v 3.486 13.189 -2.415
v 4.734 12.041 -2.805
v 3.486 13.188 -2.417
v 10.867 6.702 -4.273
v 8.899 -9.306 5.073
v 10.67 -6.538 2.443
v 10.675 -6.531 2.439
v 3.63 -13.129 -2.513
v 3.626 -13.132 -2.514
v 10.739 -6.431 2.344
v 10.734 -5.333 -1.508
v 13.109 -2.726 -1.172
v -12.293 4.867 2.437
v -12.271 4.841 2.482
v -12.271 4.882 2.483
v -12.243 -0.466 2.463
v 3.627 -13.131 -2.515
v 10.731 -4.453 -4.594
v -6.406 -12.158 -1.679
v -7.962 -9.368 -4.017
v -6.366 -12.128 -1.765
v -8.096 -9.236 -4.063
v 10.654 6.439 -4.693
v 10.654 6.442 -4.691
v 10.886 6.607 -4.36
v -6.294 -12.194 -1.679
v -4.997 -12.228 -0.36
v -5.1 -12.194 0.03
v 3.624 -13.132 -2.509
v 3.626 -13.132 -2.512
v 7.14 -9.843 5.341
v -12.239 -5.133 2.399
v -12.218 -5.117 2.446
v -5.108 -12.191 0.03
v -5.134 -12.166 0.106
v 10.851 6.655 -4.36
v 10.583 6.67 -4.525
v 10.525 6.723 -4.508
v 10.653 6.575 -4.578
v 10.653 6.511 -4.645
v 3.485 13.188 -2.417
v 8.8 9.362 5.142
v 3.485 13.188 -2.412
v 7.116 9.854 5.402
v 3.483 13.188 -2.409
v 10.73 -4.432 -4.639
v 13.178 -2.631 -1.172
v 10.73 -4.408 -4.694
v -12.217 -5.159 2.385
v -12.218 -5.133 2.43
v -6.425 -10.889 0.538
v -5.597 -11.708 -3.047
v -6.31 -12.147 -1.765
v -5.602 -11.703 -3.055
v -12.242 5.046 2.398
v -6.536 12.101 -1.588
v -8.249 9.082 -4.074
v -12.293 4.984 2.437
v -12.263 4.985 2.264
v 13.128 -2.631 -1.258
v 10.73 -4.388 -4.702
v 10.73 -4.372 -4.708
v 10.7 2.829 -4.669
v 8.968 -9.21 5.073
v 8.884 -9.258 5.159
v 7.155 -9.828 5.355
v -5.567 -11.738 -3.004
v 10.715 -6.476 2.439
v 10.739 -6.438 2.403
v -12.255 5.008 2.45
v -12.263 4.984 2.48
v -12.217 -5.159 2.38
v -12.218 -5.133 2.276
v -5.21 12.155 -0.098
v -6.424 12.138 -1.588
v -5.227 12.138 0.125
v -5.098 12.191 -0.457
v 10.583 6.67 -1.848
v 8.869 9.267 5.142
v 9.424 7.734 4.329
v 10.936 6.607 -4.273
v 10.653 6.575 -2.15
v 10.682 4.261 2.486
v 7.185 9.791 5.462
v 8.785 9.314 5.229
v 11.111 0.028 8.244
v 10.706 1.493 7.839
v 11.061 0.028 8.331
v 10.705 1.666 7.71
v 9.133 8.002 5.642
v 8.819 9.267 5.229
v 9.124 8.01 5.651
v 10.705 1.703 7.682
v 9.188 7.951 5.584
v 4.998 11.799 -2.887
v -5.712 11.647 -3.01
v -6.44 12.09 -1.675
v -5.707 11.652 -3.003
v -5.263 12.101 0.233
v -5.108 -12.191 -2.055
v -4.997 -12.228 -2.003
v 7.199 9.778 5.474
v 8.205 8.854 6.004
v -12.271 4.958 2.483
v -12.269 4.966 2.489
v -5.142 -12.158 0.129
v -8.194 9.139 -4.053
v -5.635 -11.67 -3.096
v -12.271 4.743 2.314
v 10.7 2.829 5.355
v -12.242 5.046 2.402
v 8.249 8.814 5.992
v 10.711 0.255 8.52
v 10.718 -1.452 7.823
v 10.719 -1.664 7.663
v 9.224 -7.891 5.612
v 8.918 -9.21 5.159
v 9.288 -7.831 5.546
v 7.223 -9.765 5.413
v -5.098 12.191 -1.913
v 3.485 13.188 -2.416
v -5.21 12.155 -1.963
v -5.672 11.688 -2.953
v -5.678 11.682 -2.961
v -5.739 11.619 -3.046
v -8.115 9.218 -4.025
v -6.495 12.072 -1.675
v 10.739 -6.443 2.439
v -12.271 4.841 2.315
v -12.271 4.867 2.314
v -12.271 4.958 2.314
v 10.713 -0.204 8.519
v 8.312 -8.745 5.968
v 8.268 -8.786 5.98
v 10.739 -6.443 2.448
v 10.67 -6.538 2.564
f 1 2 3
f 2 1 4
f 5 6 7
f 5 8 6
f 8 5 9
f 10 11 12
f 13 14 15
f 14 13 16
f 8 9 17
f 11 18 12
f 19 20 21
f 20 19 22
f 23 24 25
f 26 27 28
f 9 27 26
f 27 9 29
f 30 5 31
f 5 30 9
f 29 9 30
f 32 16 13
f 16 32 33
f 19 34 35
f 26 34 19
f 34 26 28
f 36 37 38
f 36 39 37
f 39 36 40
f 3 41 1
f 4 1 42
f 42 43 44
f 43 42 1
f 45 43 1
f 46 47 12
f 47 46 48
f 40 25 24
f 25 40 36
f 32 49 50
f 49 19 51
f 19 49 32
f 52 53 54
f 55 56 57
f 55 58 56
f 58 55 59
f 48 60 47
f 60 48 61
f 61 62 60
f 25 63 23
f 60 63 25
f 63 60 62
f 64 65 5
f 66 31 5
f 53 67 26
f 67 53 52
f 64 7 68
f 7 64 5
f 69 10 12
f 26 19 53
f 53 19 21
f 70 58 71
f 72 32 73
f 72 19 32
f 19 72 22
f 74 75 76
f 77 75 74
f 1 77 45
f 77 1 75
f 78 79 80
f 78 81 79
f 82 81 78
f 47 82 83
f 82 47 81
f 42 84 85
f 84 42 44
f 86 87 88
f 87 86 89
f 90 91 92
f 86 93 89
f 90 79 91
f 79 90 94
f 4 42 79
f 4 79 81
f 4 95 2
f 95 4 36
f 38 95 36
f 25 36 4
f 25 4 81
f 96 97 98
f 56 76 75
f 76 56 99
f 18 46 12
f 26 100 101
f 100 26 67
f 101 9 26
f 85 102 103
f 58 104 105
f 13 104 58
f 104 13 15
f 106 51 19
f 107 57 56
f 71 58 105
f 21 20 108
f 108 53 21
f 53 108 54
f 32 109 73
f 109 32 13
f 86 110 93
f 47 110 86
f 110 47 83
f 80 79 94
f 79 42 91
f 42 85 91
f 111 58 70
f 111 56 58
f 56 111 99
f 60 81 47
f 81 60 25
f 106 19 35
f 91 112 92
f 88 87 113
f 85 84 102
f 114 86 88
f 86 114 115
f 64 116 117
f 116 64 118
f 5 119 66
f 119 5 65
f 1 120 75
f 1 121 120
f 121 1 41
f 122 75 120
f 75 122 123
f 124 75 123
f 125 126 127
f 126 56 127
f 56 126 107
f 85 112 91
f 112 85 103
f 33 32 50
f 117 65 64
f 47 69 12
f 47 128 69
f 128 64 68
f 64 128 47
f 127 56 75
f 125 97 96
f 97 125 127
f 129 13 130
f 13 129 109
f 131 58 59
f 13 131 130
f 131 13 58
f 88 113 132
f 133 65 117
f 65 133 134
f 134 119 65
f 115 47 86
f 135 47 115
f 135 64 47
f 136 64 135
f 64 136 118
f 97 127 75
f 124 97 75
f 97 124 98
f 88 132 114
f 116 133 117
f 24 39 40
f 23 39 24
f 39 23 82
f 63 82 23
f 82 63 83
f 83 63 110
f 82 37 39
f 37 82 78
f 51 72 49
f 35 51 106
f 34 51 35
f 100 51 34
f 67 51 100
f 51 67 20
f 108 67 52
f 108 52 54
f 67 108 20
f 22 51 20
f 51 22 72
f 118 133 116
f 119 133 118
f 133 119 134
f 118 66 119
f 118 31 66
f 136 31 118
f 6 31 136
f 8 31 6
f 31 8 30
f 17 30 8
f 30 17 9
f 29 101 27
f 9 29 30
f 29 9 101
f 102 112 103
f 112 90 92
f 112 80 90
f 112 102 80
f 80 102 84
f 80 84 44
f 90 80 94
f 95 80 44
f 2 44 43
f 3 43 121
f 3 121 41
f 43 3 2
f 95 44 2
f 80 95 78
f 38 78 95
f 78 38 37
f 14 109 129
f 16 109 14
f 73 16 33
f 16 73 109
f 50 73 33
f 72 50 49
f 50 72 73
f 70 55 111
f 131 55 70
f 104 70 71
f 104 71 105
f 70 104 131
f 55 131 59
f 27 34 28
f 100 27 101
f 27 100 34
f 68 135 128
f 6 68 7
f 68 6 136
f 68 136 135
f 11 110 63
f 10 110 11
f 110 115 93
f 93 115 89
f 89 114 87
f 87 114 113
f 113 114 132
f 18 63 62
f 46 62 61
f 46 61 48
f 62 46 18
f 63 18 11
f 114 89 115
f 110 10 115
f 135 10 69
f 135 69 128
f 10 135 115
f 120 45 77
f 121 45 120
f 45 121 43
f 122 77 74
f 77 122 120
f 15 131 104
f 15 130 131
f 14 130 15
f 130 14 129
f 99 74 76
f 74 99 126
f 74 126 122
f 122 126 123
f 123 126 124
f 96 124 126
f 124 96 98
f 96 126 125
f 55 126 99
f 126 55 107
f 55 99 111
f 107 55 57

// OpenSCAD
// Auto-generated OpenSCAD file

    inner_points = 10*[[-0.5027427746732974, -1.2132577404539668, 0.4881043623012211], [-0.499831290049384, -1.204459418490458, -0.5118526931706182], [-0.5157776363132736, 1.200827522309684, 0.5093072214379191], [-0.5128661516893601, 1.2096258442731929, -0.49064983403392026], [-0.5086193277767076, -0.5124098904764615, 1.201390950781287], [-0.501590382111015, -0.4911688622660335, -1.2127189343294926], [-0.5140185442516425, 0.48753696608525965, 1.2101734625967935], [-0.5069895985859499, 0.5087779942956876, -1.2039364225139861], [0.359529337093046, -1.3036867530634884, -0.010202168810380517], [0.34542050452204526, 1.3093003061927015, 0.012747640543079655], [0.3486708828251333, -0.00868878506597237, 1.3077795910126873], [0.356278958789958, 0.014302338195185572, -1.3052341192799881], [0.35477328534708075, -0.9291522473942972, 0.9169986098966502], [0.36015300745359075, -0.9128950682292366, -0.9306811039847213], [0.34479683416150053, 0.9185086213584498, 0.9332265757174204], [0.3501765562680105, 0.9347658005235104, -0.914453138163951], [-1.2136540747107942, -0.5099881151558083, 0.492222324416665], [-1.210742590086881, -0.5011897931922996, -0.5077347310551743], [-1.2190532911857292, 0.4899587414059127, 0.5010048362321716], [-1.2161418065618157, 0.49875706336942155, -0.49895221923966776], [1.063883448467321, -0.6442596016793936, -0.2729589342943806], [1.0552533480577226, 0.6574723104142199, 0.27968882911738335], [1.0591273967213557, -0.26972509601020234, 0.6542418444126501], [1.0600093998036881, 0.2829378047450287, -0.6475119495896475]];

    outer_points = 10*[[0.3363850936800798, 0.49717027434153493, 1.2376593574683699], [0.341756318462831, -0.5028082510208011, 1.2339045261138102], [-1.0468325897833741, 0.49717027434153493, -0.7410108942158731], [-1.041461365000623, -0.5028082510208011, -0.7447657255704329], [-0.07254801541637895, 1.2042618706661667, 0.6607753251951688], [-0.05958073169930672, -1.2098998473454328, 0.6517103604145671], [-0.6454955396212365, 1.2042618706661667, -0.1588167285166301], [-0.6325282559041643, -1.2098998473454328, -0.16788169329723182], [1.1011301516039498, 0.002818988339633091, 0.8244018077378379], [-0.3960538802834066, 0.002818988339633091, -1.317295439635775], [0.3455202922831028, 1.3093538952497537, -0.2415408923617442], [0.35955597903744035, -1.3037159185704876, -0.2513527395361928], [0.8769102618348533, 0.926678680872714, 0.514226519320763], [0.8868349911174557, -0.9210407041934477, 0.5072884956477444], [-0.1817587197969125, 0.926678680872714, -1.0001821275456813], [-0.17183399051431014, -0.9210407041934477, -1.0071201512187], [-0.6482766395432775, 0.49253622567066274, 1.063246637982406], [-0.6429054147605264, -0.5074422996916733, 1.0594918066278463], [-1.2212241637481351, 0.49253622567066274, 0.24365458427060716], [-1.215852938965384, -0.5074422996916733, 0.23989975291604748], [1.3078142401788866, -0.26313920206751534, -0.11716493364872071], [0.5563153383297748, 0.27804527608852586, -1.1859814572497327], [1.0835943504097902, 0.6607204904655656, -0.4273402220657956], [0.7805352280988713, -0.6458144164445551, -0.8758061688326578]];

    // Convex hull for inner set (I)
    module inner_hull() {
        hull() {
            for (p = inner_points) {
                translate(p) sphere(r=0.1);
            }
        }
    }

    // Convex hull for outer set (O) minus inner hull (O \ I)
    module outer_minus_inner() {
        difference() {
            hull() {
                for (p = outer_points) {
                    translate(p) sphere(r=0.1);
                }
            }
            inner_hull(); // Subtract inner hull
        }
    }

    // Convex hull for outer set (O) minus all translated inner hulls
    module outer_minus_AllTranslationInner() {
        difference() {
            hull() {
                for (p = outer_points) {
                    translate(p) sphere(r=0.1);
                }
            }
            hull() {
                translate([0,0,50]) inner_hull();
                translate([0,0,-50]) inner_hull();
            }; // Subtract translated inner hulls
        }
    }

    // Difference between outer_minus_inner and outer_minus_AllTranslationInner
    module outer_minus_inner_diff() {
        difference() {
            // Outer minus inner
            difference() {
                hull() {
                    for (p = outer_points) {
                        translate(p) sphere(r=0.1);
                    }
                }
                inner_hull();
            }

            // Subtract Outer minus AllTranslationInner
            difference() {
                hull() {
                    for (p = outer_points) {
                        translate(p) sphere(r=0.1);
                    }
                }
                hull() {
                    translate([0,0,50]) inner_hull();
                    translate([0,0,-50]) inner_hull();
                };
            }
        }
    }

    // Rendering all with colors applied
    color([0, 1, 0, 1]) outer_minus_AllTranslationInner(); // Opaque green
    
